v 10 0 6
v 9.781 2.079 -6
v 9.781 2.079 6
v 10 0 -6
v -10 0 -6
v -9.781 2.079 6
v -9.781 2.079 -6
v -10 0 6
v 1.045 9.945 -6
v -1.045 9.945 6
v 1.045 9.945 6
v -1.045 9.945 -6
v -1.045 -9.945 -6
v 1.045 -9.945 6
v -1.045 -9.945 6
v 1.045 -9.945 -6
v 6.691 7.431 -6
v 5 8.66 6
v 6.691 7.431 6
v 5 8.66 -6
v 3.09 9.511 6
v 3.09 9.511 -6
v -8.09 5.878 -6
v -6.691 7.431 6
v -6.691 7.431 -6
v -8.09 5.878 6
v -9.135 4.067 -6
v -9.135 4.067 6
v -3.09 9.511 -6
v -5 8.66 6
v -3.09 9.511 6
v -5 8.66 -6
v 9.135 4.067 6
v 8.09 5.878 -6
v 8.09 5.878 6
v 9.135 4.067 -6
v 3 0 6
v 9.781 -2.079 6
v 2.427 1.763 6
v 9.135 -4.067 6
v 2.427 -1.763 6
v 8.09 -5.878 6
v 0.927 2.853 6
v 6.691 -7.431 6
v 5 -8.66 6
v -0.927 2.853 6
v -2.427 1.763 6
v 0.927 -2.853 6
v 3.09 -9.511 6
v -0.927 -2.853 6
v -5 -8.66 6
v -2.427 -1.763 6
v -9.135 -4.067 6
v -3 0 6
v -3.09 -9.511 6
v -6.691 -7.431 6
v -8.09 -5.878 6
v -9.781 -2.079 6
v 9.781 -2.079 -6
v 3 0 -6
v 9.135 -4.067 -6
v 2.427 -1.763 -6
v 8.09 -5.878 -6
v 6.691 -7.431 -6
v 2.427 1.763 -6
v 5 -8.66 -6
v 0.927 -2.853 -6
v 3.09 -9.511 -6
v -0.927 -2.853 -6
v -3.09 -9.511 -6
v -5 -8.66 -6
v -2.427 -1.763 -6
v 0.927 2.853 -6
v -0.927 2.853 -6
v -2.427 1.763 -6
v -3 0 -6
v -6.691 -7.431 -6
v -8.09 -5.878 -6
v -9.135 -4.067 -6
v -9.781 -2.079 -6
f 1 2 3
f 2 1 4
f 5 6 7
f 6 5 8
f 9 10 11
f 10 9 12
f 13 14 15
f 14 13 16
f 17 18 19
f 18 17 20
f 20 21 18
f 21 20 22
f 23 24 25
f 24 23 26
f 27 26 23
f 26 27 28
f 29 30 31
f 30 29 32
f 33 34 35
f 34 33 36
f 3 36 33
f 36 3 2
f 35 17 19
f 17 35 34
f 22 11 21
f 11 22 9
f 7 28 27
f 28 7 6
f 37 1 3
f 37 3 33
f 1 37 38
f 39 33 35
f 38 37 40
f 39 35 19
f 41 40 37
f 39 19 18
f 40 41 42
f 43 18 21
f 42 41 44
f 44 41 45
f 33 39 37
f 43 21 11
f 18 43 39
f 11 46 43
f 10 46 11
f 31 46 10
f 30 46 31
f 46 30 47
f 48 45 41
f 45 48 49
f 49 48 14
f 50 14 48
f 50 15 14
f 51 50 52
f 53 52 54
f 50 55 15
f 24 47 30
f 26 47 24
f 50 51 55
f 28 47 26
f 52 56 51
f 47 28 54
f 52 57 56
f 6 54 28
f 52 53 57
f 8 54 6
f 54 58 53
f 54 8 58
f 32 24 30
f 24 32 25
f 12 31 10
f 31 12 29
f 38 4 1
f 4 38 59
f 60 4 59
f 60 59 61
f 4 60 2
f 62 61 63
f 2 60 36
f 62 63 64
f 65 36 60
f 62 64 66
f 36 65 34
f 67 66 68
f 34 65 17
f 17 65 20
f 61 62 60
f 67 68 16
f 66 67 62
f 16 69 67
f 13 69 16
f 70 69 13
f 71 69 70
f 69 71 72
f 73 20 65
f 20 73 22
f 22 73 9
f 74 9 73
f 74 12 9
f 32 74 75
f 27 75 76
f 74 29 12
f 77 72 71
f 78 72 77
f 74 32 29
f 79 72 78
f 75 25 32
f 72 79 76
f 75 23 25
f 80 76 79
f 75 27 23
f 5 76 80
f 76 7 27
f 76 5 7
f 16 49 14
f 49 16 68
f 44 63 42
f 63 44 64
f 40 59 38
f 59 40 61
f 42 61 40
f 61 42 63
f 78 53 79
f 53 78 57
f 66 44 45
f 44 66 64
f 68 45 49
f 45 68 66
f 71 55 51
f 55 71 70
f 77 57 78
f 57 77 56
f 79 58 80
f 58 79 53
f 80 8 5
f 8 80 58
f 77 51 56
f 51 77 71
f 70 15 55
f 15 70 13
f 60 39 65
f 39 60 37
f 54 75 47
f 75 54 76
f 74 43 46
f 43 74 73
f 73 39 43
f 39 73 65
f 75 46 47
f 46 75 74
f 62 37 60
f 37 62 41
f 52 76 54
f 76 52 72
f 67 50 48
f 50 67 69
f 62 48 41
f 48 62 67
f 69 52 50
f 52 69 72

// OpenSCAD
difference() {
  cylinder(h=12, d=20, center=true);
  cylinder(h=12, d=6, center=true);
}
